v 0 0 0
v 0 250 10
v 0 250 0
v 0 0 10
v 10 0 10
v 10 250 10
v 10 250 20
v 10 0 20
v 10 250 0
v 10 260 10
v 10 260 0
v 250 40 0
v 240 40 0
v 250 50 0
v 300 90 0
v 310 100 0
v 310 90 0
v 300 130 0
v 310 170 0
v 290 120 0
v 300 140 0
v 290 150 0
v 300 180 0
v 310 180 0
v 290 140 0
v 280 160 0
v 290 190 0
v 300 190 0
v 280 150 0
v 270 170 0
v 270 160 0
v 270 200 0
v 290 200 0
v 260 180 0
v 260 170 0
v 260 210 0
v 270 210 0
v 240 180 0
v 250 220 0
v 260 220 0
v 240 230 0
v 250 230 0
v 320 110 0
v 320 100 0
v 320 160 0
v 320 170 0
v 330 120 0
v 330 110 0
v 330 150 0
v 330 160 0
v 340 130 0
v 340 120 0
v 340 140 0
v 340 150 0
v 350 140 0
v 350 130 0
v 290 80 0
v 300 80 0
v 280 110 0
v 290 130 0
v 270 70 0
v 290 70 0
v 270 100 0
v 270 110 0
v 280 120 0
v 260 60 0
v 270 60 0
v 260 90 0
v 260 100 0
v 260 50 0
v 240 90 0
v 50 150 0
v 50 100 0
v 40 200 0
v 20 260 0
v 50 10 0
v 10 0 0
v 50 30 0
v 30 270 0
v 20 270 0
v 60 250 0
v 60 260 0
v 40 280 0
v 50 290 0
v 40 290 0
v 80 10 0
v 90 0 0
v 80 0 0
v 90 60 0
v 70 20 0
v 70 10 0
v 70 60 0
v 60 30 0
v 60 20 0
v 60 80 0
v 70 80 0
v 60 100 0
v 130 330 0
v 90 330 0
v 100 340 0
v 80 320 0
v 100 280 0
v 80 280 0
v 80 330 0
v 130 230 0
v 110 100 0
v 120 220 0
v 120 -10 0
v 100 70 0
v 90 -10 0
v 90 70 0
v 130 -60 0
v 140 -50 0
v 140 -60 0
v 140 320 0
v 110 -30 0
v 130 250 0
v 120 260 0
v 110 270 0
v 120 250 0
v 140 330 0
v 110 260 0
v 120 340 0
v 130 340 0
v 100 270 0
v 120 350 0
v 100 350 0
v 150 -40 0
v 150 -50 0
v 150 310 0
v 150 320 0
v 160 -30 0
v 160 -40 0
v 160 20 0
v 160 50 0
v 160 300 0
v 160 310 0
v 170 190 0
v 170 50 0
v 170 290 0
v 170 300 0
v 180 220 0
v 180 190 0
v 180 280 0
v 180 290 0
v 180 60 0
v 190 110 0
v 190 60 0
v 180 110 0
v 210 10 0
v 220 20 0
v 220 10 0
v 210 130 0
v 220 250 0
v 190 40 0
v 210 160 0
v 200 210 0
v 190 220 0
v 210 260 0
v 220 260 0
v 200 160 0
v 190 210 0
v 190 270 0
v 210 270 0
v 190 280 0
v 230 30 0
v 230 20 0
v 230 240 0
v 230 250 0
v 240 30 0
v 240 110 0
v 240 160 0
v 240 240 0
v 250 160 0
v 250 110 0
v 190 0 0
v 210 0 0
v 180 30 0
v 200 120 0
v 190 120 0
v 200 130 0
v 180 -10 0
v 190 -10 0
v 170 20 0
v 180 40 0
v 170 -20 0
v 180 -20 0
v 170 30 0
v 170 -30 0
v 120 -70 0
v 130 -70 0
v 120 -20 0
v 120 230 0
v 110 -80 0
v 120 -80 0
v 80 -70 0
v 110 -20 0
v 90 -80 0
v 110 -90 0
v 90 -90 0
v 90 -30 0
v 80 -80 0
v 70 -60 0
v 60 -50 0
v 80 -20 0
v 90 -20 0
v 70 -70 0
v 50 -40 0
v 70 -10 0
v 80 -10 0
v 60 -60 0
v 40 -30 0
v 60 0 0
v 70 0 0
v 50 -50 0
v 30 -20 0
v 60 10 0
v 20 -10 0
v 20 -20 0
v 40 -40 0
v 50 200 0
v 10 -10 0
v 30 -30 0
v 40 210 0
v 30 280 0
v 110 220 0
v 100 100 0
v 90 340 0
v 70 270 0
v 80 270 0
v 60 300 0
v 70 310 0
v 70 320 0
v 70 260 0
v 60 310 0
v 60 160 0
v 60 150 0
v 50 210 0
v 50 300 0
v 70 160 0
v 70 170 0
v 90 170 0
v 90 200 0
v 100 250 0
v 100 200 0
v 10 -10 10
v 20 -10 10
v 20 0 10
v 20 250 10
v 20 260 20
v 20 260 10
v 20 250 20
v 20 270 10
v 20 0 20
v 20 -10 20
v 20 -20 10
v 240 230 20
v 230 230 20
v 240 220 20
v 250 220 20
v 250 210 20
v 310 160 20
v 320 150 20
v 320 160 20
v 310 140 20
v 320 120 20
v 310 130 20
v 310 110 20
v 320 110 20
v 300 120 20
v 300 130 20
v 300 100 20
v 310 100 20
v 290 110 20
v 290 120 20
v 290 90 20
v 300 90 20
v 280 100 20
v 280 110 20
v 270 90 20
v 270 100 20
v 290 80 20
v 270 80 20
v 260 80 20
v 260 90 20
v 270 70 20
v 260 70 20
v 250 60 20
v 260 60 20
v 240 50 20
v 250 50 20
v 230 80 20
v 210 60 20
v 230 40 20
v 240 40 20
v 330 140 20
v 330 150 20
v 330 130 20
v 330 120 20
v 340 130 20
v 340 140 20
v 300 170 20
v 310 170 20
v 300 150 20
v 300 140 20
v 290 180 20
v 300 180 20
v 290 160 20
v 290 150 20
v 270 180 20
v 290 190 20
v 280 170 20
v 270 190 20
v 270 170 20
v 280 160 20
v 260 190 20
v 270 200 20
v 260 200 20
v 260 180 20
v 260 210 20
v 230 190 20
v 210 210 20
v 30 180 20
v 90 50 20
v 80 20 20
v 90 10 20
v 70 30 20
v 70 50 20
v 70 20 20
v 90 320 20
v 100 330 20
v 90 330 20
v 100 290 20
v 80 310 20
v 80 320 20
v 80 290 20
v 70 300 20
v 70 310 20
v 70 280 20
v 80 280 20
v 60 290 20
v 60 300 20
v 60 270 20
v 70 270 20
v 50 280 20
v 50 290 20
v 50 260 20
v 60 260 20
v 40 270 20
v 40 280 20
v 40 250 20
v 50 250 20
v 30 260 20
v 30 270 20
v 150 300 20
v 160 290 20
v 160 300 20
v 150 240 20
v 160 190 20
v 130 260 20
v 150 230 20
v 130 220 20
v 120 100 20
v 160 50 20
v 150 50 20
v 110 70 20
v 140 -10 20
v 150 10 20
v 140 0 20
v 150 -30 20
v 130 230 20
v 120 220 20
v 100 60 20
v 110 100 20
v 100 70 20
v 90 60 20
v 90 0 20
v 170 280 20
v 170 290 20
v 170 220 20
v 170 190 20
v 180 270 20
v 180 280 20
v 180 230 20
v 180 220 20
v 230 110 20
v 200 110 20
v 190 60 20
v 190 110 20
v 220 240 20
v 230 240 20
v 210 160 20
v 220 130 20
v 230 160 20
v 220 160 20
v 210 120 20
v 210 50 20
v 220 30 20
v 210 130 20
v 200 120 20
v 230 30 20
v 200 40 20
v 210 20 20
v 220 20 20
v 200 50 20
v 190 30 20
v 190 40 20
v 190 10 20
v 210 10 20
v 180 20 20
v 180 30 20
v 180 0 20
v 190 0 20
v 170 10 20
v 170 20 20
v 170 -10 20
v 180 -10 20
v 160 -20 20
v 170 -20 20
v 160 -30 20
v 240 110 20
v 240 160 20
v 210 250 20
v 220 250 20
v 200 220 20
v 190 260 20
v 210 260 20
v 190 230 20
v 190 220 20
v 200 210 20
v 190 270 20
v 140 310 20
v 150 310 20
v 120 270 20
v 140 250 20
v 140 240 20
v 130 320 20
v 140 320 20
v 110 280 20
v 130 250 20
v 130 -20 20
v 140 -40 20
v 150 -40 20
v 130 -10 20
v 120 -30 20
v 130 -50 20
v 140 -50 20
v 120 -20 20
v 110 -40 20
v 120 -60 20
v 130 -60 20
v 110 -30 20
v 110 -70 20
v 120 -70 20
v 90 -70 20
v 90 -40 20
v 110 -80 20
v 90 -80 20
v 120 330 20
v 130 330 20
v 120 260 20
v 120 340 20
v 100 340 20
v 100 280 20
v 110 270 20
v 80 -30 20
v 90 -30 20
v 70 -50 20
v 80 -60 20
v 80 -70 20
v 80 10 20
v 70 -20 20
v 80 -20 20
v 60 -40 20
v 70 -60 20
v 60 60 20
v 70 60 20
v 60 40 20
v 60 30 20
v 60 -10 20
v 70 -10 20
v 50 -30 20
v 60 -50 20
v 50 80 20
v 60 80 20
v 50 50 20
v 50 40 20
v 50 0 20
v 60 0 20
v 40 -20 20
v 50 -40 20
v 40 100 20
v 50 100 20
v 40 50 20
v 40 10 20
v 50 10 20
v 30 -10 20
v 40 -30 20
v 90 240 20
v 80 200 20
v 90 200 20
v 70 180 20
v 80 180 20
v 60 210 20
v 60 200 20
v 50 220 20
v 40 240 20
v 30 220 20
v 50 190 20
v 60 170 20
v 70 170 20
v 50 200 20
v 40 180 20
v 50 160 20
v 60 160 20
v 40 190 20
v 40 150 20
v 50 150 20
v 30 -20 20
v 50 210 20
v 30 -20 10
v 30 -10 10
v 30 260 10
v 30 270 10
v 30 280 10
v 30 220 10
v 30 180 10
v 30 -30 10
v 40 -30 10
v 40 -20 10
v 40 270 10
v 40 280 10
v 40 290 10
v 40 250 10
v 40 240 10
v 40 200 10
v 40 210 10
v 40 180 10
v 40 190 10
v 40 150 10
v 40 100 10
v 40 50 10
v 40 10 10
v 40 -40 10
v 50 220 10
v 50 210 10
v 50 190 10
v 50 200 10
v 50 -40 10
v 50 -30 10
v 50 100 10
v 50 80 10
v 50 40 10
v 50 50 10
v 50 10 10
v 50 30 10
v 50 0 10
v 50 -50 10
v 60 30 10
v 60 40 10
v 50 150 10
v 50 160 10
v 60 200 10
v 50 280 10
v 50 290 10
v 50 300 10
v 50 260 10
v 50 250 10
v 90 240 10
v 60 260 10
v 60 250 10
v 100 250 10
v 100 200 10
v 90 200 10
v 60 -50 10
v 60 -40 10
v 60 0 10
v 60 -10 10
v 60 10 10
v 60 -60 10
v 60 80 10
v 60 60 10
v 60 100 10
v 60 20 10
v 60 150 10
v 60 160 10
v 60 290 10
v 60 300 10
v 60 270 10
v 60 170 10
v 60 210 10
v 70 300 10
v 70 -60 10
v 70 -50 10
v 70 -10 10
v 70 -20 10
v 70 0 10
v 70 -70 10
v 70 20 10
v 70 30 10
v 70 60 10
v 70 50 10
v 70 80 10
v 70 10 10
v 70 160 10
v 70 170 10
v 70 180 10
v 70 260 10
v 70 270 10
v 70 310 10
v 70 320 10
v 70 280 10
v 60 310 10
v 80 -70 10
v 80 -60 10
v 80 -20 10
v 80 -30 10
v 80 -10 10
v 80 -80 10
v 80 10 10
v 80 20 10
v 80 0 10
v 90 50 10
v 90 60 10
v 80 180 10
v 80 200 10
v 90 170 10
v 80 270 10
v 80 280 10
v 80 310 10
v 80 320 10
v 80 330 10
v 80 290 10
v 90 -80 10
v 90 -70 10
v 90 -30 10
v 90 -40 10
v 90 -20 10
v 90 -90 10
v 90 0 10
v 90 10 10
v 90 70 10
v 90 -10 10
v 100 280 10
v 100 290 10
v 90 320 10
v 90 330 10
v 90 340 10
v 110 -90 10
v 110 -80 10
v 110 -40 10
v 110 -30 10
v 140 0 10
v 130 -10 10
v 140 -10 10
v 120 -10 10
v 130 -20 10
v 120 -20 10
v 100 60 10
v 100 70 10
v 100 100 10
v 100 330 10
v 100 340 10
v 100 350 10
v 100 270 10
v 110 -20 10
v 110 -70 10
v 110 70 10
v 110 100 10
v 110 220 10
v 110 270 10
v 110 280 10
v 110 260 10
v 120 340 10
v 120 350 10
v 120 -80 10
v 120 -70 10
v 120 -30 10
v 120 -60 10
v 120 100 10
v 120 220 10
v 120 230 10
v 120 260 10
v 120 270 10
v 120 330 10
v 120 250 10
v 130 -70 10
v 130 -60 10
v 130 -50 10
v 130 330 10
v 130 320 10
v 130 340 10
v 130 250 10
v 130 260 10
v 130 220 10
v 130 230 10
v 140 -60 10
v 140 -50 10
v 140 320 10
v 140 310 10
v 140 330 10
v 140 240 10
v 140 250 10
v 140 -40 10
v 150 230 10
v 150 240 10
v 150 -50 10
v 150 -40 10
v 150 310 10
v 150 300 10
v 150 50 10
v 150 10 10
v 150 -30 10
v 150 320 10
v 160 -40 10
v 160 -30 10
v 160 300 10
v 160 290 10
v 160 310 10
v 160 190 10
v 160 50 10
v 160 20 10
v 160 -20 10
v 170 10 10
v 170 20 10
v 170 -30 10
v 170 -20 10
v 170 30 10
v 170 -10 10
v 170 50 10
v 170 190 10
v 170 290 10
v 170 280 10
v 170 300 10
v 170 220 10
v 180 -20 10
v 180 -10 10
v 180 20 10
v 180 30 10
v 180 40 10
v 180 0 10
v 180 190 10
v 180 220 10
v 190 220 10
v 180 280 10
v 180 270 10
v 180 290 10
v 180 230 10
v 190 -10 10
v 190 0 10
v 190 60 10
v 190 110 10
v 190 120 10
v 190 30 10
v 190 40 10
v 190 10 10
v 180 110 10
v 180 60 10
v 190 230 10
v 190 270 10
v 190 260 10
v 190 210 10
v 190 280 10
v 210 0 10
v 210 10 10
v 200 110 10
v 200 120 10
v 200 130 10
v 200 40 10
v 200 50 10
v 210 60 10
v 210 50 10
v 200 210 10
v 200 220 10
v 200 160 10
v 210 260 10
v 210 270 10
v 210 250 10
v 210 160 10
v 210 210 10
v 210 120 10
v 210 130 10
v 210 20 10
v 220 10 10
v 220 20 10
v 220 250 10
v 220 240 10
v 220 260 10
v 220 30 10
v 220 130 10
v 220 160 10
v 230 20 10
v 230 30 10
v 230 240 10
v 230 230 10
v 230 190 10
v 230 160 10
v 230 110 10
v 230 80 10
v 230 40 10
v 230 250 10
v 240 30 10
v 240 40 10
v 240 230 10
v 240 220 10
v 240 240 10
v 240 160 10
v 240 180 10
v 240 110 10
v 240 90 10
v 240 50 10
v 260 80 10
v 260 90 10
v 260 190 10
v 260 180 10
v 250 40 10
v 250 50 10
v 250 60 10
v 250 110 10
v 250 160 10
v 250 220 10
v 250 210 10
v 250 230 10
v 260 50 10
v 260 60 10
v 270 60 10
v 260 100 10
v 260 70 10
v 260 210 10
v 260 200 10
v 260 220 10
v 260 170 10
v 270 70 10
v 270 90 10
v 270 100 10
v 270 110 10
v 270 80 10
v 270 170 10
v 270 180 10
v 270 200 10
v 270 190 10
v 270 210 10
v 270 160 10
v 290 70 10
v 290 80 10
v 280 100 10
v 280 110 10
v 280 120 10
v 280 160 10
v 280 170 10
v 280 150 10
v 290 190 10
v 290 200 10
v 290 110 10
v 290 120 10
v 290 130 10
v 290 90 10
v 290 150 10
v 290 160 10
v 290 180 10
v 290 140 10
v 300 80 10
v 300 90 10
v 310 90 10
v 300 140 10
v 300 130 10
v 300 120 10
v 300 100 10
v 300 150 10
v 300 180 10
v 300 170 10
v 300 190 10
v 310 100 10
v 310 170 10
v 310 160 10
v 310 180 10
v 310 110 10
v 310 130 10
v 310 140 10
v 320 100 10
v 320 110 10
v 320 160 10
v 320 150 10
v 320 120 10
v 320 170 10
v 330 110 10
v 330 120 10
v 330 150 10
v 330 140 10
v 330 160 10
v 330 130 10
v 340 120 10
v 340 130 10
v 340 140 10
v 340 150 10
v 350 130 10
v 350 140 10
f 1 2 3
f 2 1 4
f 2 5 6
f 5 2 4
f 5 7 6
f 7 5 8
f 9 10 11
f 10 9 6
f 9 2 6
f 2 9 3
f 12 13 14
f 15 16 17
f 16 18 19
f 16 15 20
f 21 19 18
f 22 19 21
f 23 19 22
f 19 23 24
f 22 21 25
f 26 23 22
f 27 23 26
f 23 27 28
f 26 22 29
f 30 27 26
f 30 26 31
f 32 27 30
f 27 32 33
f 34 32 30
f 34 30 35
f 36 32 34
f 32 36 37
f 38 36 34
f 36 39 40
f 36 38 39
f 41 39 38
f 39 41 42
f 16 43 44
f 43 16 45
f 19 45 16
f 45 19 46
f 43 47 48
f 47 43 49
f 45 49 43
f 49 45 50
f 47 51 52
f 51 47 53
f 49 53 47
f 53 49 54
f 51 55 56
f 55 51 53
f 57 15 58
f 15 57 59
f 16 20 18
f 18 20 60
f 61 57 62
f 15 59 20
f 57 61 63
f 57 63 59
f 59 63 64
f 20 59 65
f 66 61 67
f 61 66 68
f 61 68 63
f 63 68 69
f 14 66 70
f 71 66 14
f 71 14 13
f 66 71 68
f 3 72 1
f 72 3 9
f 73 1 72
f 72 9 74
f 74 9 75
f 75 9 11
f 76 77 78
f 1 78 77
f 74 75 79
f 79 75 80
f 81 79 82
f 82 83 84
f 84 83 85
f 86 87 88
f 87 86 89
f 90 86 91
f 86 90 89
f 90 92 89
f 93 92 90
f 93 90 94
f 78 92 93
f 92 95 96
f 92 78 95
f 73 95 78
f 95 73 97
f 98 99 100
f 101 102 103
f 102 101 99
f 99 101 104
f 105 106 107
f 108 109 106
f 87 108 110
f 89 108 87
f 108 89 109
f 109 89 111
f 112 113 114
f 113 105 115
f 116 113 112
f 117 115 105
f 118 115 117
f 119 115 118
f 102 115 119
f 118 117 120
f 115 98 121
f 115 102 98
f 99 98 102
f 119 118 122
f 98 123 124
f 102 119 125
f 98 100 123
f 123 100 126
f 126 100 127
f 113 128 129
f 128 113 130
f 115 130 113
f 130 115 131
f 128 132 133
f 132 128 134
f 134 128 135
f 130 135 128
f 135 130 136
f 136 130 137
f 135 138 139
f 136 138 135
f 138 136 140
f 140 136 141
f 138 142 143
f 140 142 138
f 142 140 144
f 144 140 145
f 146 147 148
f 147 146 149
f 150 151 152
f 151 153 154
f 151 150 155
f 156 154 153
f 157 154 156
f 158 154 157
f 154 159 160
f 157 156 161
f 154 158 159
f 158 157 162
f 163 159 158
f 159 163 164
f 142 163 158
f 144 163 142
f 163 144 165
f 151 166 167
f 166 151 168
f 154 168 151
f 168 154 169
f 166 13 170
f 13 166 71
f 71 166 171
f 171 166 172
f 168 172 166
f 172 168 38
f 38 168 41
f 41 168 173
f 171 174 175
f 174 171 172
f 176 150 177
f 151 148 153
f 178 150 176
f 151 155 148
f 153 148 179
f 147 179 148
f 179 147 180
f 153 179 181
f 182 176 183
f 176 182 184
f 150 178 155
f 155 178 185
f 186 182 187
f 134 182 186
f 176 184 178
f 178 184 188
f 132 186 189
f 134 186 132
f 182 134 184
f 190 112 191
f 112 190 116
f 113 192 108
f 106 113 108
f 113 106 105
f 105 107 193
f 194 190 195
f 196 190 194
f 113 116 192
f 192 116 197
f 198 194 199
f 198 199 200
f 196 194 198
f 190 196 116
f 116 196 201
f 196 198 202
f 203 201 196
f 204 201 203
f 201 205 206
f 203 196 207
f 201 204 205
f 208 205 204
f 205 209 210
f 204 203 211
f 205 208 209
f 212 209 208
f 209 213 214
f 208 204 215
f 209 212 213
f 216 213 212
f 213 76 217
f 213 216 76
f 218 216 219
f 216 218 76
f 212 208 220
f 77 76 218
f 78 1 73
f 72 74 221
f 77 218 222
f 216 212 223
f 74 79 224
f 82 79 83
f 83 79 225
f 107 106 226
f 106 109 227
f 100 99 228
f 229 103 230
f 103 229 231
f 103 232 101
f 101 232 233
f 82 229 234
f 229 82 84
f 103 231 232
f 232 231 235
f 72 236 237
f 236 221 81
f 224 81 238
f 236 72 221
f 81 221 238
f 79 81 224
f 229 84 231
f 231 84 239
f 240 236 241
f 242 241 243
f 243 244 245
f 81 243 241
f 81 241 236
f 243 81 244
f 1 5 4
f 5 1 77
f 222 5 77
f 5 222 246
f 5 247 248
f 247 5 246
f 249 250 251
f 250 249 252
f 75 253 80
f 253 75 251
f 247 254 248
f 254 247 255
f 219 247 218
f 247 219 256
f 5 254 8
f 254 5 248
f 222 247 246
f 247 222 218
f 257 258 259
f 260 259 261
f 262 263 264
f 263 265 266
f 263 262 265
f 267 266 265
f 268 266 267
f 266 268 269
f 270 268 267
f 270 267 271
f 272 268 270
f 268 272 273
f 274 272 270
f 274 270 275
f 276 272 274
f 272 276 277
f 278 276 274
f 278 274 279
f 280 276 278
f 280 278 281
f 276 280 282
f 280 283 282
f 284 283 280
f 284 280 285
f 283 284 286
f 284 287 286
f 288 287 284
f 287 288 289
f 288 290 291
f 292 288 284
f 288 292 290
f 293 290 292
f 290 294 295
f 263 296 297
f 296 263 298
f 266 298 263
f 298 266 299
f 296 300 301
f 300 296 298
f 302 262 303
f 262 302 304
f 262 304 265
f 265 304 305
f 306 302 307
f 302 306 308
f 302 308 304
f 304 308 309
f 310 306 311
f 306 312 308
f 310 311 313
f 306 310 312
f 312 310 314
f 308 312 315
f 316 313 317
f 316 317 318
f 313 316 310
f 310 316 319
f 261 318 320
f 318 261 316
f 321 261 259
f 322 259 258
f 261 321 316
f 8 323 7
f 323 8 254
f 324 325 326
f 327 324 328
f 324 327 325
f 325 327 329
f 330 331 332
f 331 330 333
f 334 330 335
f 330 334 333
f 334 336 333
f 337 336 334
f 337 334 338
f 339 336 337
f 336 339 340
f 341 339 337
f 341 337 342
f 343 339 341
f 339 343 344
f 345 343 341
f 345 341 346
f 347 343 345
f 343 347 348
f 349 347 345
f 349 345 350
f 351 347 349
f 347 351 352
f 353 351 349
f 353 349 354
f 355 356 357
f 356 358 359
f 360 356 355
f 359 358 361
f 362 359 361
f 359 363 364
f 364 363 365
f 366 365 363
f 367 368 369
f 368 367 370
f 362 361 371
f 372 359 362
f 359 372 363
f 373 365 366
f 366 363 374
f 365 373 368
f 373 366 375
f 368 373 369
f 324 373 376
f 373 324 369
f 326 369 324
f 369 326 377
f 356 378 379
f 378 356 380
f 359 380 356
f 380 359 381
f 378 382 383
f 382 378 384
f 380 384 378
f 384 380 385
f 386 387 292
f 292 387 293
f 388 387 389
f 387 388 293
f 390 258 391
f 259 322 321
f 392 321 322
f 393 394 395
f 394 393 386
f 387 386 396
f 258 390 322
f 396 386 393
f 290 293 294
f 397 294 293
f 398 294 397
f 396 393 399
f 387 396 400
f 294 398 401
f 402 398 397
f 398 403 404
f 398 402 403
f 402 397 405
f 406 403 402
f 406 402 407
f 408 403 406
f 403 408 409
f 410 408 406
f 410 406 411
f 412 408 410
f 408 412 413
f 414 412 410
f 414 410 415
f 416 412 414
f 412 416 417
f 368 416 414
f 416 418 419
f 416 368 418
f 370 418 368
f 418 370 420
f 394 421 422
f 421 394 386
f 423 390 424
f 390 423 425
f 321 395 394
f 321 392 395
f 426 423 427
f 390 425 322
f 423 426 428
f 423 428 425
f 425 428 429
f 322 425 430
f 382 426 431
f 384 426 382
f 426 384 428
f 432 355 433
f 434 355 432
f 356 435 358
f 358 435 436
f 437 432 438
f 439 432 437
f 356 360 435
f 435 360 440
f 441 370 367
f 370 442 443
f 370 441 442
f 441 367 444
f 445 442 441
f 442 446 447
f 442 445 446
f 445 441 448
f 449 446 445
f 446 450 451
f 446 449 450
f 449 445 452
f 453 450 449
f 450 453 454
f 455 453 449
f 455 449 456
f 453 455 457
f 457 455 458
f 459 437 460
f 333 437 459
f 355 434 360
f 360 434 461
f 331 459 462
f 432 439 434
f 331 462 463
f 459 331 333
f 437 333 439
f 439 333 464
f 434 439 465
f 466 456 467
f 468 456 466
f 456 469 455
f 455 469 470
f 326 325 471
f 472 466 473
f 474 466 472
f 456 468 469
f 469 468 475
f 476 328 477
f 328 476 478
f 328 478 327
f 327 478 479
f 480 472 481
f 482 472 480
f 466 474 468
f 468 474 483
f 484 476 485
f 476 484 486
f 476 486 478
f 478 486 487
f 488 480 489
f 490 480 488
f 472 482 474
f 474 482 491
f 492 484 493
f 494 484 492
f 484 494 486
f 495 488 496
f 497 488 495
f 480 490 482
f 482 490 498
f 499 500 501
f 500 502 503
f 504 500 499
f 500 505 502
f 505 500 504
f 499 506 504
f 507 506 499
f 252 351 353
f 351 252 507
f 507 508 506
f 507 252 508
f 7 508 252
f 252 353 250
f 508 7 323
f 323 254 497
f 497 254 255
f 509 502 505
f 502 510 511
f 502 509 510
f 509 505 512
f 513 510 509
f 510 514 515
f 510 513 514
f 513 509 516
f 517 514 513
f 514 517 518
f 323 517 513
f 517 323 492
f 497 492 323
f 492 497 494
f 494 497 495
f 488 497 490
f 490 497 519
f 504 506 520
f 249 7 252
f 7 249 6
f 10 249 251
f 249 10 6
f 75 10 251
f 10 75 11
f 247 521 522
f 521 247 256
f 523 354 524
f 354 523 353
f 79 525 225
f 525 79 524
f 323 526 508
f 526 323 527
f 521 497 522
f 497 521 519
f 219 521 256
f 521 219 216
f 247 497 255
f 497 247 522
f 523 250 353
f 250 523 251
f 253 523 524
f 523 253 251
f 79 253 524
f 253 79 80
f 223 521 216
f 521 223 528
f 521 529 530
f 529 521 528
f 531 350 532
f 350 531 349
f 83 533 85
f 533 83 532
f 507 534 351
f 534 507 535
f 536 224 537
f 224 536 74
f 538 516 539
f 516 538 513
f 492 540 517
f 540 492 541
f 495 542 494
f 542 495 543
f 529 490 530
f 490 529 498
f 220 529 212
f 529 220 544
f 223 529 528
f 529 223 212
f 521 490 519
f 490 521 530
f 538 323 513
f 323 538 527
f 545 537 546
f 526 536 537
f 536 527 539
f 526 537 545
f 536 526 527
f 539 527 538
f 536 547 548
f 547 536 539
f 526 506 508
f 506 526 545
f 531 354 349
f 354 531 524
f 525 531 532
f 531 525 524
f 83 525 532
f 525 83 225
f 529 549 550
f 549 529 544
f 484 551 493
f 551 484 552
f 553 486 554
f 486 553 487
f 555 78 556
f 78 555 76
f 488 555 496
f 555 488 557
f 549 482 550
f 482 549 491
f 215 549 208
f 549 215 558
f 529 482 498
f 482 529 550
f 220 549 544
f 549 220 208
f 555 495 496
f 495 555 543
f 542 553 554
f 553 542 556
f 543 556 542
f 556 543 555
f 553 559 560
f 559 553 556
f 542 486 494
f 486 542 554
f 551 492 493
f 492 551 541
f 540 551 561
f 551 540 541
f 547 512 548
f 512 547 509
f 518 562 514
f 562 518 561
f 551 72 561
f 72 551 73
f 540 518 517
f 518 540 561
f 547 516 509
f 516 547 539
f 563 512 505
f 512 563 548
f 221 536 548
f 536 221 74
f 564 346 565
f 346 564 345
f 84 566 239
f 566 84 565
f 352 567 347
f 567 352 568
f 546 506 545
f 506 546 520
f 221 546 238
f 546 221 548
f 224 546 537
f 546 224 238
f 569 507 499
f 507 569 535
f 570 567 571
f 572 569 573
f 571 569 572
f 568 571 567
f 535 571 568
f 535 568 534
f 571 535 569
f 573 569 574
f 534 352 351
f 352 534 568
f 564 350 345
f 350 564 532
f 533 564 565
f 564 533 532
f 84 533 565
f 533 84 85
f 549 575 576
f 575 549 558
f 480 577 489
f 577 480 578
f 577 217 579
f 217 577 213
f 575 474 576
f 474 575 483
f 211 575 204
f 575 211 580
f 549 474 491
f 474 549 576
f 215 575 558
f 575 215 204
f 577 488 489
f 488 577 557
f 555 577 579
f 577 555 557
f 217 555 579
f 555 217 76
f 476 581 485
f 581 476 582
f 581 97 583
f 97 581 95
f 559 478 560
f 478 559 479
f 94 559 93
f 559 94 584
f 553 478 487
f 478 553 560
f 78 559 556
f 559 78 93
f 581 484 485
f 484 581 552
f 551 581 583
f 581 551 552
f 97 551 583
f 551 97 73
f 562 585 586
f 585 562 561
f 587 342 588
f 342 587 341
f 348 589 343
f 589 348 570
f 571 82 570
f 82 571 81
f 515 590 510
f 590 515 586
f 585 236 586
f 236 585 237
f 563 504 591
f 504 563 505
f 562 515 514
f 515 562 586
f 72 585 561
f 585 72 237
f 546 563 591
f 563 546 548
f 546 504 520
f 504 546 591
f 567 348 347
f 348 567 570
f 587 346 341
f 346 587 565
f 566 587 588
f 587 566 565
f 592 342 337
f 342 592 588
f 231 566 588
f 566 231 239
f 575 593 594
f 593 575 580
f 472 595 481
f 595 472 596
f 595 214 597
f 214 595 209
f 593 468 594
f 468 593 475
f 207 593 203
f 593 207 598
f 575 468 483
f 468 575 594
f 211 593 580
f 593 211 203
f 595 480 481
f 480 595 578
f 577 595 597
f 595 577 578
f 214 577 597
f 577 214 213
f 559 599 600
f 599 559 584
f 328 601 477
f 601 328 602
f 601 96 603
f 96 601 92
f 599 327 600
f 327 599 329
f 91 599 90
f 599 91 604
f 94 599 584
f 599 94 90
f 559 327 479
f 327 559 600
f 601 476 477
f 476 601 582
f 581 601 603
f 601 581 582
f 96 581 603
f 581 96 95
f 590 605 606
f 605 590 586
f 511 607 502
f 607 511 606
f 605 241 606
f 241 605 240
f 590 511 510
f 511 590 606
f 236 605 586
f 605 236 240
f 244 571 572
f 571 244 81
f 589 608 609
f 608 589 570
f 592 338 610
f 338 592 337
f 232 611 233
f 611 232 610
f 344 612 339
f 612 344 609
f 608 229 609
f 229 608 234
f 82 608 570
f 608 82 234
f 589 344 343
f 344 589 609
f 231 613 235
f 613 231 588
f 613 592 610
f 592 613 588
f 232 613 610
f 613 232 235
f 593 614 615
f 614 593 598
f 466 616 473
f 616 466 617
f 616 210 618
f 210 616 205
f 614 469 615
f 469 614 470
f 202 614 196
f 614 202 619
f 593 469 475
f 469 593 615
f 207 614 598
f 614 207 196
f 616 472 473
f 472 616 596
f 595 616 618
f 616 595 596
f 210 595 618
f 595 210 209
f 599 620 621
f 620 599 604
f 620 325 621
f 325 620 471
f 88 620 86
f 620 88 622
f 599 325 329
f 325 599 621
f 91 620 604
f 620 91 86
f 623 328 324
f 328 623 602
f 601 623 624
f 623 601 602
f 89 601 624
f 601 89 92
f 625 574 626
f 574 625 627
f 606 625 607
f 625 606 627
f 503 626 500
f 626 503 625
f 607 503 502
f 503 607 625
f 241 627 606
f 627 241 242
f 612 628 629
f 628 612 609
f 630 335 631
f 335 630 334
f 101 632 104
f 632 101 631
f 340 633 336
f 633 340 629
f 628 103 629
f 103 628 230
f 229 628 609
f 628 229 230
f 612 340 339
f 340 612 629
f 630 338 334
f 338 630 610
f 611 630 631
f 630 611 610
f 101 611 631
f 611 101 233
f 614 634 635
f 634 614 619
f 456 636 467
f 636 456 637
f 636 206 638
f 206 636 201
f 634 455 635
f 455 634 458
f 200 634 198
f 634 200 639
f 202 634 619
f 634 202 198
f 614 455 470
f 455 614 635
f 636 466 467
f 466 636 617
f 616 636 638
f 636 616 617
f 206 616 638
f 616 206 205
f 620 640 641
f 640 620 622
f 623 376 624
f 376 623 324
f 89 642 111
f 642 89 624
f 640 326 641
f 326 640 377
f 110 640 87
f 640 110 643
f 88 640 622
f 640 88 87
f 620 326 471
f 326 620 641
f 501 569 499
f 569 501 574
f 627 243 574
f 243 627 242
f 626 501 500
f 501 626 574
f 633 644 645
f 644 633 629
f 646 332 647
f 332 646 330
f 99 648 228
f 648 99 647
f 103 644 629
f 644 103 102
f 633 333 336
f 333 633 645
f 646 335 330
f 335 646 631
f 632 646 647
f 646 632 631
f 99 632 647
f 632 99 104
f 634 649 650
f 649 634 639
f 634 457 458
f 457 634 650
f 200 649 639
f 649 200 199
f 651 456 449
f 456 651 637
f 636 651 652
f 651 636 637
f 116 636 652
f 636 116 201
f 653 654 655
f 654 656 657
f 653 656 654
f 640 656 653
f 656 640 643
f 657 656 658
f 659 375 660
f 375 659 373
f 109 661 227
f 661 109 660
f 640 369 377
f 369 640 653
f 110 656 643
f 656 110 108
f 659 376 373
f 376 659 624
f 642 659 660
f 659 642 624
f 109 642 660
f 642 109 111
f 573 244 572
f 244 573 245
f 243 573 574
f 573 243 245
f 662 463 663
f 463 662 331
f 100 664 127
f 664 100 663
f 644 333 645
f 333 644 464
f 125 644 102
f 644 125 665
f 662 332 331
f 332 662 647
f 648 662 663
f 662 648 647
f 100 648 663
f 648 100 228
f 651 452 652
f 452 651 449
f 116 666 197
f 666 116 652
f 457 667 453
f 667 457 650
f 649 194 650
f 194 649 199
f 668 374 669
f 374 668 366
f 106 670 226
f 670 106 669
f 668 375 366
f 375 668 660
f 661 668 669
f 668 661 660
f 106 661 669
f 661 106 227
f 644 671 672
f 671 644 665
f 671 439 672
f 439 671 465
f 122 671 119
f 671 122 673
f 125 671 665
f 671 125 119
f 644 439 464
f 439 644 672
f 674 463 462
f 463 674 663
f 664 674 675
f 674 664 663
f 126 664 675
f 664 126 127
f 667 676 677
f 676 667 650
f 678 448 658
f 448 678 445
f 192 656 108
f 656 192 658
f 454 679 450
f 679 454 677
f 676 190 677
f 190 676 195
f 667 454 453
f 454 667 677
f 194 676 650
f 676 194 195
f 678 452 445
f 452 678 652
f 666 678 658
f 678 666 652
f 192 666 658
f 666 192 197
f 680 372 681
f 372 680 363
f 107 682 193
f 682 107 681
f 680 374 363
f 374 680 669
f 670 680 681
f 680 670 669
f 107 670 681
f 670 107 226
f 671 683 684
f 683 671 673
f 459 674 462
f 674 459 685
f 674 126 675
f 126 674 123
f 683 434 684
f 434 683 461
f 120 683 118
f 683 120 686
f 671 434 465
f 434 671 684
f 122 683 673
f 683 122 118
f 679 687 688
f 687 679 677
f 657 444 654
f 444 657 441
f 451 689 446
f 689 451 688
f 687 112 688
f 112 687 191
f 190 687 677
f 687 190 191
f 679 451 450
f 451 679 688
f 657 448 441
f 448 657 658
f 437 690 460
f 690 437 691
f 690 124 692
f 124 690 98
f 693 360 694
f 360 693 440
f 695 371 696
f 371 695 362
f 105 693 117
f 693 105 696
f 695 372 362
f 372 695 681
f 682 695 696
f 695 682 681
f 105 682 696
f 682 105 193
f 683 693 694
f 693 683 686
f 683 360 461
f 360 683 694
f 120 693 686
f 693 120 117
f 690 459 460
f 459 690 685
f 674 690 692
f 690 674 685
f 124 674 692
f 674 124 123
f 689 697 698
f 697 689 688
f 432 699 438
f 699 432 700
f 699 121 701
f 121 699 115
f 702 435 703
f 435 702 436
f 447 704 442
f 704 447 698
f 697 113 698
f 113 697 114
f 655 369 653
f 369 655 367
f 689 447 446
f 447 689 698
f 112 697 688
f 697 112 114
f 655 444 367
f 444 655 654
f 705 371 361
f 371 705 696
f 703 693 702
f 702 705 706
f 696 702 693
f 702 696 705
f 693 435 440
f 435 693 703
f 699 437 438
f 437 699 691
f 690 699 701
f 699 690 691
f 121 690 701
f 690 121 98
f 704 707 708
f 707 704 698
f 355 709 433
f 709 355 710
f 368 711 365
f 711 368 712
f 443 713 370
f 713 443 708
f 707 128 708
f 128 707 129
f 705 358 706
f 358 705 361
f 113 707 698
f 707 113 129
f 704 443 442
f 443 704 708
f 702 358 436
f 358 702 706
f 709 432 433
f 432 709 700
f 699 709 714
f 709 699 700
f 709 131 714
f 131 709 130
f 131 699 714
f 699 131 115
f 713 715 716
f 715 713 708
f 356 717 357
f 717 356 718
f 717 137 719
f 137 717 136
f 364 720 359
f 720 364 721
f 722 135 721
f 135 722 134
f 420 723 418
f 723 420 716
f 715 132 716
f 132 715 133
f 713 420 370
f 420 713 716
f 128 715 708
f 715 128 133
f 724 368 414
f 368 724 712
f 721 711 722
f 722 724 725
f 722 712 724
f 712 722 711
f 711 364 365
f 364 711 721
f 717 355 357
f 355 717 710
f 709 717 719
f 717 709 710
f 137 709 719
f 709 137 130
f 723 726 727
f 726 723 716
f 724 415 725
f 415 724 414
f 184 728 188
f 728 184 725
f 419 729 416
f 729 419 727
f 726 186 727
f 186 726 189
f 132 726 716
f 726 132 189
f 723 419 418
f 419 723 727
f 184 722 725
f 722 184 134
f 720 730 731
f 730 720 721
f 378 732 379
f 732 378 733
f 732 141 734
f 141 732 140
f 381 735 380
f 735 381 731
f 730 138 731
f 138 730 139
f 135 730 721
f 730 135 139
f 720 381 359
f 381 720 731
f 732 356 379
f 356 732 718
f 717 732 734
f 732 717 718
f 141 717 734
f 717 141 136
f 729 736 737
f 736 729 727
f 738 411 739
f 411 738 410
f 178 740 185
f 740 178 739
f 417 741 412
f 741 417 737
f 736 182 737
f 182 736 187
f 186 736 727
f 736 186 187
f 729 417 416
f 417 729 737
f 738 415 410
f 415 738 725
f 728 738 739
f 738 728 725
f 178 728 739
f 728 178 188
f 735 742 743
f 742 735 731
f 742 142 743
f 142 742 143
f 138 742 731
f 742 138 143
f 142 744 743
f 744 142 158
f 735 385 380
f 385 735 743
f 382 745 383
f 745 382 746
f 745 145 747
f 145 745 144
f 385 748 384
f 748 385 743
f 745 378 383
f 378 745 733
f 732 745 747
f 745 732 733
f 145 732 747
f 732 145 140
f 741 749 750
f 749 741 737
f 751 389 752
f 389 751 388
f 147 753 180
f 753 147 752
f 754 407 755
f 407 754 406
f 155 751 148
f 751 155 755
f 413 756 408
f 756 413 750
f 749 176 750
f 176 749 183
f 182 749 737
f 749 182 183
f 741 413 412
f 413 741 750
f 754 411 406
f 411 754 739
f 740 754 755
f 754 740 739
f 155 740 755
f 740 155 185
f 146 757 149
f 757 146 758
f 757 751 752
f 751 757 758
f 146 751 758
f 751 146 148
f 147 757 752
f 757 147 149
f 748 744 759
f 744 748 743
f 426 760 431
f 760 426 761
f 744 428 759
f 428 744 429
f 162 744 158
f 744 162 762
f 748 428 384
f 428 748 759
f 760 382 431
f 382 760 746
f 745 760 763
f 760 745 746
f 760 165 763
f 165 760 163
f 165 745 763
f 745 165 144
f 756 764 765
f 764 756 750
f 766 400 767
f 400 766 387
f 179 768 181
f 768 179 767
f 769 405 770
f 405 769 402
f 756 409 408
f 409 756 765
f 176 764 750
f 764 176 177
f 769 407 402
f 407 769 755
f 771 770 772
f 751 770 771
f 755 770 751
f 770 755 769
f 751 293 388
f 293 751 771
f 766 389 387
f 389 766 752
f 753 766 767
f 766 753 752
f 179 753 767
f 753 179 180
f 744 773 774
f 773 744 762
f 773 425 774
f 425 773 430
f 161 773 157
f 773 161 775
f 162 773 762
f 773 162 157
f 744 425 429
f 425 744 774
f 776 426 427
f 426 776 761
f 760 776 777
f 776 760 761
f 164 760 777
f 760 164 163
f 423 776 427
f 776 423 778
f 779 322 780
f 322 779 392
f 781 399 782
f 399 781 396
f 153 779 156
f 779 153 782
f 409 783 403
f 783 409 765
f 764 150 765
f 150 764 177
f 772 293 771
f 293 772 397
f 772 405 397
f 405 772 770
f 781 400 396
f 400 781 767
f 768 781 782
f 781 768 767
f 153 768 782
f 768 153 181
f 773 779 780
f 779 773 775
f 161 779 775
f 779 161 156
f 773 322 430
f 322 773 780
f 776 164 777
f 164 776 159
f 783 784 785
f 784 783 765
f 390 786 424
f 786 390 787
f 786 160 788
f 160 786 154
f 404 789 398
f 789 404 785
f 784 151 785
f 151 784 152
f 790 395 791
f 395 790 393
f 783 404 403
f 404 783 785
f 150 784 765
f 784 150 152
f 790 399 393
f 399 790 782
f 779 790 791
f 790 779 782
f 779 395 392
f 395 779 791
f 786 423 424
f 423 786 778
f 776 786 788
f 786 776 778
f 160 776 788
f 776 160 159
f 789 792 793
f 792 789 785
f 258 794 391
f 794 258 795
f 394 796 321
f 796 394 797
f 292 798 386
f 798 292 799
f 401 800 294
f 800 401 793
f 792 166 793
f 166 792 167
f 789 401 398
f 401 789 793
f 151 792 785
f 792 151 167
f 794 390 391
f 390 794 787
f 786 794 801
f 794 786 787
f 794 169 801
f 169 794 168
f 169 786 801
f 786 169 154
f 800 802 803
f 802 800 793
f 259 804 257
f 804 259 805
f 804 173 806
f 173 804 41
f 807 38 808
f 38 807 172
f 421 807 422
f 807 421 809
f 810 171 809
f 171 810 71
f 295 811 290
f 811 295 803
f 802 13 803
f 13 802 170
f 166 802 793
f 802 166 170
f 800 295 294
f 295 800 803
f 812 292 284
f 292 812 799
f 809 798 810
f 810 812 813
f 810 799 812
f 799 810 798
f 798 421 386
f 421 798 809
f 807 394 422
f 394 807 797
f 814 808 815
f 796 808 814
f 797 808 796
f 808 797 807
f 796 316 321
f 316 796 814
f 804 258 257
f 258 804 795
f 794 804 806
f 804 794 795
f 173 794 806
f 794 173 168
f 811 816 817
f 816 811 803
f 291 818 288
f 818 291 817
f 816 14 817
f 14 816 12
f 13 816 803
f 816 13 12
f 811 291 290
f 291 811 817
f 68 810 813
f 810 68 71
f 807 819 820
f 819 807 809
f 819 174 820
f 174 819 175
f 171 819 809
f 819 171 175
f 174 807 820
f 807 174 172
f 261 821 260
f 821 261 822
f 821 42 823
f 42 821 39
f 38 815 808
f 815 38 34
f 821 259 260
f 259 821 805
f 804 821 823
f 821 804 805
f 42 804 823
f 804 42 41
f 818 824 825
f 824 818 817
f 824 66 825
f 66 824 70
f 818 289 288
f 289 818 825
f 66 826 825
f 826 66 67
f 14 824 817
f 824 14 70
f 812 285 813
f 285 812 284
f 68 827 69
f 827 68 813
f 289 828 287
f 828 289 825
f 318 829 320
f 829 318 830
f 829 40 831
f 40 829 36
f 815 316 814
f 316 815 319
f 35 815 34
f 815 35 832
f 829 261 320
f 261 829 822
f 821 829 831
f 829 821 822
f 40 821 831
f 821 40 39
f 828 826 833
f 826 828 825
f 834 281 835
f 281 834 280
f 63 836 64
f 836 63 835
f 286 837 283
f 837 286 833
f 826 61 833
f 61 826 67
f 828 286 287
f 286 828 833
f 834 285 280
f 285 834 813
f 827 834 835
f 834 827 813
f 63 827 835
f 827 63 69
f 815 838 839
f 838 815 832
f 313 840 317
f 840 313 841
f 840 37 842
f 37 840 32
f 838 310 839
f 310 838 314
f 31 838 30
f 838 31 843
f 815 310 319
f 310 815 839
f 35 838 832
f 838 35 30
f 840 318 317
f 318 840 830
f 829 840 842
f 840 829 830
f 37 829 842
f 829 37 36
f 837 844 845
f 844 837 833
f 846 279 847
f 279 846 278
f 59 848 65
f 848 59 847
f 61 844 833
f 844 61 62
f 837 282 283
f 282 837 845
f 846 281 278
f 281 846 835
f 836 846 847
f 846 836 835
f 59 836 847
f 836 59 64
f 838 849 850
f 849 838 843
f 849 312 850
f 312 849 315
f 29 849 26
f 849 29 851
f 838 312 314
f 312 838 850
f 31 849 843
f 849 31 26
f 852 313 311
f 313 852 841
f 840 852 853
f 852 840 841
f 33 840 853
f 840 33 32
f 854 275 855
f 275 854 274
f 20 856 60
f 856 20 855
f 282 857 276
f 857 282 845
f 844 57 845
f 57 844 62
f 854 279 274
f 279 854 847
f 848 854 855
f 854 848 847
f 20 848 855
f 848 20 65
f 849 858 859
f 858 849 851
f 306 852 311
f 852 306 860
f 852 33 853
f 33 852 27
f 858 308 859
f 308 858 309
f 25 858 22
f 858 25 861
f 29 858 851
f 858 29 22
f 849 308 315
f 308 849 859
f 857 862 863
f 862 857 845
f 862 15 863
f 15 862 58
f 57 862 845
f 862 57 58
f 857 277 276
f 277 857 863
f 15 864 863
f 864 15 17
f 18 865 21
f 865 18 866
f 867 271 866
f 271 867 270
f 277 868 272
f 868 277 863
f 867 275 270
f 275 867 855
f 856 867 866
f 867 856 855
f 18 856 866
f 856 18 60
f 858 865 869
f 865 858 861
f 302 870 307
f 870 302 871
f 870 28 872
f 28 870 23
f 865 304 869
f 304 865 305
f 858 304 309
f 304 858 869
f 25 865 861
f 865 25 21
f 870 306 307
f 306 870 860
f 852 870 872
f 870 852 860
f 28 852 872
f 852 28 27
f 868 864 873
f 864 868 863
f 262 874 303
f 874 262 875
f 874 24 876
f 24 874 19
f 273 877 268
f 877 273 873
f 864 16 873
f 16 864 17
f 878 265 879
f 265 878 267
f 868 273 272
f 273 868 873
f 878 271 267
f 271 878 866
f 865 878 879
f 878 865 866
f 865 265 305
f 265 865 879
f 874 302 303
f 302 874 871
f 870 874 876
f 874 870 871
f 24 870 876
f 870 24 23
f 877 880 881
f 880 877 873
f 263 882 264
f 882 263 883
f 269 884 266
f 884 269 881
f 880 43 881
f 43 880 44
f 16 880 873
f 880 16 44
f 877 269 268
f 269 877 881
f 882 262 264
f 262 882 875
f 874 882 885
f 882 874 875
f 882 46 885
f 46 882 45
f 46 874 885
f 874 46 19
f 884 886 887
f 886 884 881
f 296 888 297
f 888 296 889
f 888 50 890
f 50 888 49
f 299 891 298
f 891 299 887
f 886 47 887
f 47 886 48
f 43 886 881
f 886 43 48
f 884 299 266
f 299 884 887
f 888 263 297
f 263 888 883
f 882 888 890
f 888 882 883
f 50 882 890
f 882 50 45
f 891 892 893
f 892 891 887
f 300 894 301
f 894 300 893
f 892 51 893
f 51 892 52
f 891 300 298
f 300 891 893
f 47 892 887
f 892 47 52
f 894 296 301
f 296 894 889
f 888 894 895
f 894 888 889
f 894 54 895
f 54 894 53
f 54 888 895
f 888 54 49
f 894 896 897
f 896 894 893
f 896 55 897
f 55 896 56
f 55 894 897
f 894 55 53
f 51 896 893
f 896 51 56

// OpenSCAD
/* 
    superman is a 3D superman model
    
    Copyright (C) 2017  Eric Real Abadiano

    This program is free software: you can redistribute it and/or modify
    it under the terms of the GNU General Public License as published by
    the Free Software Foundation, either version 3 of the License, or
    (at your option) any later version.

    This program is distributed in the hope that it will be useful,
    but WITHOUT ANY WARRANTY; without even the implied warranty of
    MERCHANTABILITY or FITNESS FOR A PARTICULAR PURPOSE.  See the
    GNU General Public License for more details.

    You should have received a copy of the GNU General Public License
    along with this program.  If not, see <http://www.gnu.org/licenses/>.
*/

//////////////// FILA 1
//negro x25
color("black") cube([10,250,10]);

//////////////// FILA 2
//negro x1
color("black") translate([10,-10,0]) cube([10,10,10]);
//rojo x25
color("black") translate([10,0,0]) cube([10,250,20]);
//negro x1
color("black") translate([10,250,0]) cube([10,10,10]);

//////////////// FILA 3
//negro x1
color("black") translate([20,-20,0]) cube([10,10,10]);
//rojo x27
color("black") translate([20,-10,0]) cube([10,270,20]);
//negro x1
color("black") translate([20,260,0]) cube([10,10,10]);

//////////////// FILA 4
//negro x1
color("black") translate([30,-30,0]) cube([10,10,10]);
//rojo x20
color("black") translate([30,-20,0]) cube([10,200,20]);
//negro x4
color("black") translate([30,180,0]) cube([10,40,10]);
//rojo x5
color("black") translate([30,220,0]) cube([10,50,20]);
//negro x1
color("black") translate([30,270,0]) cube([10,10,10]);

//////////////// FILA 5
//negro x1
color("black") translate([40,-40,0]) cube([10,10,10]);
//rojo x4
color("black") translate([40,-30,0]) cube([10,40,20]);
//negro x4
color("black") translate([40,10,0]) cube([10,40,10]);
//rojo x5
color("black") translate([40,50,0]) cube([10,50,20]);
//negro x5
color("black") translate([40,100,0]) cube([10,50,10]);
//rojo x4
color("black") translate([40,150,0]) cube([10,40,20]);
//negro x1
color("black") translate([40,190,0]) cube([10,10,10]);
//amarillo x1
//translate([40,200,0]) cube([10,10,10]);
//negro x1
color("black") translate([40,210,0]) cube([10,10,10]);
//rojo x2
color("black") translate([40,220,0]) cube([10,20,20]);
//negro x1
color("black") translate([40,240,0]) cube([10,10,10]);
//rojo x3
color("black") translate([40,250,0]) cube([10,30,20]);
//negro x1
color("black") translate([40,280,0]) cube([10,10,10]);

//////////////// FILA 6
//negro x1
color("black") translate([50,-50,0]) cube([10,10,10]);
//rojo x4
color("black") translate([50,-40,0]) cube([10,40,20]);
//negro x1
color("black") translate([50,0,0]) cube([10,10,10]);
//amarillo x1
//translate([50,10,0]) cube([10,20,10]);
//negro x1
color("black") translate([50,30,0]) cube([10,10,10]);
//rojo x4
color("black") translate([50,40,0]) cube([10,40,20]);
//negro x2
color("black") translate([50,80,0]) cube([10,20,10]);
//amarillo x1
//translate([50,100,0]) cube([10,50,10]);
//negro x1
color("black") translate([50,150,0]) cube([10,10,10]);
//rojo x4
color("black") translate([50,160,0]) cube([10,40,20]);
//negro x1
color("black") translate([50,200,0]) cube([10,10,10]);
//rojo x3
color("black") translate([50,210,0]) cube([10,30,20]);
//negro x2
color("black") translate([50,240,0]) cube([10,20,10]);
//rojo x3
color("black") translate([50,260,0]) cube([10,30,20]);
//negro x1
color("black") translate([50,290,0]) cube([10,10,10]);

//////////////// FILA 7
//negro x1
color("black") translate([60,-60,0]) cube([10,10,10]);
//rojo x4
color("black") translate([60,-50,0]) cube([10,40,20]);
//negro x1
color("black") translate([60,-10,0]) cube([10,10,10]);
//amarillo x2
//translate([60,0,0]) cube([10,20,10]);
//negro x1
color("black") translate([60,20,0]) cube([10,10,10]);
//rojo x3
color("black") translate([60,30,0]) cube([10,30,20]);
//negro x2
color("black") translate([60,60,0]) cube([10,20,10]);
//amarillo x8
//translate([60,80,0]) cube([10,80,10]);
//negro x1
color("black") translate([60,160,0]) cube([10,10,10]);
//rojo x7
color("black") translate([60,170,0]) cube([10,70,20]);
//negro x1
color("black") translate([60,240,0]) cube([10,10,10]);
//amarillo x1
//translate([60,250,0]) cube([10,10,10]);
//negro x1
color("black") translate([60,260,0]) cube([10,10,10]);
//rojo x3
color("black") translate([60,270,0]) cube([10,30,20]);
//negro x1
color("black") translate([60,300,0]) cube([10,10,10]);

//////////////// FILA 8
//negro x1
color("black") translate([70,-70,0]) cube([10,10,10]);
//rojo x4
color("black") translate([70,-60,0]) cube([10,40,20]);
//negro x1
color("black") translate([70,-20,0]) cube([10,10,10]);
//amarillo x2
//translate([70,-10,0]) cube([10,20,10]);
//negro x1
color("black") translate([70,10,0]) cube([10,10,10]);
//rojo x3
color("black") translate([70,20,0]) cube([10,30,20]);
//negro x1
color("black") translate([70,50,0]) cube([10,10,10]);
//amarillo x11
//translate([70,60,0]) cube([10,110,10]);
//negro x1
color("black") translate([70,170,0]) cube([10,10,10]);
//rojo x6
color("black") translate([70,180,0]) cube([10,60,20]);
//negro x1
color("black") translate([70,240,0]) cube([10,10,10]);
//amarillo x2
//translate([70,250,0]) cube([10,20,10]);
//negro x1
color("black") translate([70,270,0]) cube([10,10,10]);
//rojo x3
color("black") translate([70,280,0]) cube([10,30,20]);
//negro x1
color("black") translate([70,310,0]) cube([10,10,10]);

//////////////// FILA 9
//negro x1
color("black") translate([80,-80,0]) cube([10,10,10]);
//rojo x4
color("black") translate([80,-70,0]) cube([10,40,20]);
//negro x1
color("black") translate([80,-30,0]) cube([10,10,10]);
//amarillo x2
//translate([80,-20,0]) cube([10,20,10]);
//negro x1
color("black") translate([80,0,0]) cube([10,10,10]);
//rojo x3
color("black") translate([80,10,0]) cube([10,40,20]);
//negro x1
color("black") translate([80,50,0]) cube([10,10,10]);
//amarillo x11
//translate([80,60,0]) cube([10,110,10]);
//negro x3
color("black") translate([80,170,0]) cube([10,30,10]);
//rojo x4
color("black") translate([80,200,0]) cube([10,40,20]);
//negro x1
color("black") translate([80,240,0]) cube([10,10,10]);
//amarillo x3
//translate([80,250,0]) cube([10,30,10]);
//negro x1
color("black") translate([80,280,0]) cube([10,10,10]);
//rojo x3
color("black") translate([80,290,0]) cube([10,30,20]);
//negro x1
color("black") translate([80,320,0]) cube([10,10,10]);

//////////////// FILA 10
//negro x1
color("black") translate([90,-90,0]) cube([10,10,10]);
//rojo x4
color("black") translate([90,-80,0]) cube([10,40,20]);
//negro x1
color("black") translate([90,-40,0]) cube([10,10,10]);
//amarillo x2
//translate([90,-30,0]) cube([10,20,10]);
//negro x1
color("black") translate([90,-10,0]) cube([10,10,10]);
//rojo x6
color("black") translate([90,0,0]) cube([10,60,20]);
//negro x6
color("black") translate([90,60,0]) cube([10,10,10]);
//amarillo x13
//translate([90,70,0]) cube([10,130,10]);
//negro x1
color("black") translate([90,200,0]) cube([10,50,10]);
//amarillo x3
//translate([90,250,0]) cube([10,30,10]);
//negro x1
color("black") translate([90,280,0]) cube([10,10,10]);
//rojo x3
color("black") translate([90,290,0]) cube([10,40,20]);
//negro x1
color("black") translate([90,330,0]) cube([10,10,10]);

//////////////// FILA 11
//negro x1
color("black") translate([100,-90,0]) cube([10,10,10]);
//rojo x4
color("black") translate([100,-80,0]) cube([10,40,20]);
//negro x1
color("black") translate([100,-40,0]) cube([10,10,10]);
//amarillo x2
//translate([100,-30,0]) cube([10,20,10]);
//negro x1
color("black") translate([100,-10,0]) cube([10,10,10]);
//rojo x7
color("black") translate([100,0,0]) cube([10,70,20]);
//negro x3
color("black") translate([100,70,0]) cube([10,30,10]);
//amarillo x17
//translate([100,100,0]) cube([10,170,10]);
//negro x1
color("black") translate([100,270,0]) cube([10,10,10]);
//rojo x6
color("black") translate([100,280,0]) cube([10,60,20]);
//negro x1
color("black") translate([100,340,0]) cube([10,10,10]);

//////////////// FILA 12
//negro x1
color("black") translate([110,-80,0]) cube([10,10,10]);
//rojo x4
color("black") translate([110,-70,0]) cube([10,40,20]);
//negro x1
color("black") translate([110,-30,0]) cube([10,10,10]);
//amarillo x1
//translate([110,-20,0]) cube([10,10,10]);
//negro x1
color("black") translate([110,-10,0]) cube([10,10,10]);
//rojo x10
color("black") translate([110,0,0]) cube([10,100,20]);
//negro x12
color("black") translate([110,100,0]) cube([10,120,10]);
//amarillo x4
//translate([110,220,0]) cube([10,40,10]);
//negro x1
color("black") translate([110,260,0]) cube([10,10,10]);
//rojo x7
color("black") translate([110,270,0]) cube([10,70,20]);
//negro x1
color("black") translate([110,340,0]) cube([10,10,10]);

//////////////// FILA 13
//negro x1
color("black") translate([120,-70,0]) cube([10,10,10]);
//rojo x4
color("black") translate([120,-60,0]) cube([10,40,20]);
//negro x2
color("black") translate([120,-20,0]) cube([10,20,10]);
//rojo x22
color("black") translate([120,0,0]) cube([10,220,20]);
//negro x1
color("black") translate([120,220,0]) cube([10,10,10]);
//amarillo x2
//translate([120,230,0]) cube([10,20,10]);
//negro x1
color("black") translate([120,250,0]) cube([10,10,10]);
//rojo x7
color("black") translate([120,260,0]) cube([10,70,20]);
//negro x1
color("black") translate([120,330,0]) cube([10,10,10]);

//////////////// FILA 14
//negro x1
color("black") translate([130,-60,0]) cube([10,10,10]);
//rojo x4
color("black") translate([130,-50,0]) cube([10,40,20]);
//negro x1
color("black") translate([130,-10,0]) cube([10,10,10]);
//rojo x23
color("black") translate([130,0,0]) cube([10,230,20]);
//negro x1
color("black") translate([130,230,0]) cube([10,20,10]);
//rojo x7
color("black") translate([130,250,0]) cube([10,70,20]);
//negro x1
color("black") translate([130,320,0]) cube([10,10,10]);

//////////////// FILA 15
//negro x1
color("black") translate([140,-50,0]) cube([10,10,10]);
//rojo x27
color("black") translate([140,-40,0]) cube([10,270,20]);
//negro x1
color("black") translate([140,230,0]) cube([10,10,10]);
//rojo x7
color("black") translate([140,240,0]) cube([10,70,20]);
//negro x1
color("black") translate([140,310,0]) cube([10,10,10]);

//////////////// FILA 16
//negro x1
color("black") translate([150,-40,0]) cube([10,10,10]);
//rojo x4
color("black") translate([150,-30,0]) cube([10,40,20]);
//negro x4
color("black") translate([150,10,0]) cube([10,40,10]);
//rojo x25
color("black") translate([150,50,0]) cube([10,250,20]);
//negro x1
color("black") translate([150,300,0]) cube([10,10,10]);

//////////////// FILA 17
//negro x1
color("black") translate([160,-30,0]) cube([10,10,10]);
//rojo x3
color("black") translate([160,-20,0]) cube([10,30,20]);
//negro x1
color("black") translate([160,10,0]) cube([10,10,10]);
//amarillo x3
//translate([160,20,0]) cube([10,30,10]);
//negro x14
color("black") translate([160,50,0]) cube([10,140,10]);
//rojo x10
color("black") translate([160,190,0]) cube([10,100,20]);
//negro x1
color("black") translate([160,290,0]) cube([10,10,10]);

//////////////// FILA 18
//negro x1
color("black") translate([170,-20,0]) cube([10,10,10]);
//rojo x3
color("black") translate([170,-10,0]) cube([10,30,20]);
//negro x1
color("black") translate([170,20,0]) cube([10,10,10]);
//amarillo x16
//translate([170,30,0]) cube([10,160,10]);
//negro x3
color("black") translate([170,190,0]) cube([10,30,10]);
//rojo x6
color("black") translate([170,220,0]) cube([10,60,20]);
//negro x1
color("black") translate([170,280,0]) cube([10,10,10]);

//////////////// FILA 19
//negro x1
color("black") translate([180,-10,0]) cube([10,10,10]);
//rojo x3
color("black") translate([180,0,0]) cube([10,30,20]);
//negro x1
color("black") translate([180,30,0]) cube([10,10,10]);
//amarillo x2
//translate([180,40,0]) cube([10,20,10]);
//negro x5
color("black") translate([180,60,0]) cube([10,50,10]);
//amarillo x11
//translate([180,110,0]) cube([10,110,10]);
//negro x1
color("black") translate([180,220,0]) cube([10,10,10]);
//rojo x4
color("black") translate([180,230,0]) cube([10,40,20]);
//negro x1
color("black") translate([180,270,0]) cube([10,10,10]);

//////////////// FILA 20
//negro x1
color("black") translate([190,0,0]) cube([10,10,10]);
//rojo x3
color("black") translate([190,10,0]) cube([10,30,20]);
//negro x2
color("black") translate([190,40,0]) cube([10,20,10]);
//rojo x5
color("black") translate([190,60,0]) cube([10,50,20]);
//negro x1
color("black") translate([190,110,0]) cube([10,10,10]);
//amarillo x9
//translate([190,120,0]) cube([10,90,10]);
//negro x1
color("black") translate([190,210,0]) cube([10,10,10]);
//rojo x4
color("black") translate([190,220,0]) cube([10,40,20]);
//negro x1
color("black") translate([190,260,0]) cube([10,10,10]);

//////////////// FILA 21
//negro x1
color("black") translate([200,0,0]) cube([10,10,10]);
//rojo x4
color("black") translate([200,10,0]) cube([10,40,20]);
//negro x1
color("black") translate([200,50,0]) cube([10,10,10]);
//rojo x6
color("black") translate([200,60,0]) cube([10,60,20]);
//negro x1
color("black") translate([200,120,0]) cube([10,10,10]);
//amarillo x3
//translate([200,130,0]) cube([10,30,10]);
//negro x5
color("black") translate([200,160,0]) cube([10,50,10]);
//rojo x5
color("black") translate([200,210,0]) cube([10,50,20]);
//negro x1
color("black") translate([200,260,0]) cube([10,10,10]);

//////////////// FILA 22
//negro x1
color("black") translate([210,10,0]) cube([10,10,10]);
//rojo x11
color("black") translate([210,20,0]) cube([10,110,20]);
//negro x3
color("black") translate([210,130,0]) cube([10,30,10]);
//rojo x9
color("black") translate([210,160,0]) cube([10,90,20]);
//negro x1
color("black") translate([210,250,0]) cube([10,10,10]);

//////////////// FILA 23
//negro x1
color("black") translate([220,20,0]) cube([10,10,10]);
//rojo x21
color("black") translate([220,30,0]) cube([10,210,20]);
//negro x1
color("black") translate([220,240,0]) cube([10,10,10]);

//////////////// FILA 24
//negro x1
color("black") translate([230,30,0]) cube([10,10,10]);
//rojo x4
color("black") translate([230,40,0]) cube([10,40,20]);
//negro x3
color("black") translate([230,80,0]) cube([10,30,10]);
//rojo x5
color("black") translate([230,110,0]) cube([10,50,20]);
//negro x3
color("black") translate([230,160,0]) cube([10,30,10]);
//rojo x4
color("black") translate([230,190,0]) cube([10,40,20]);
//negro x1
color("black") translate([230,230,0]) cube([10,10,10]);

//////////////// FILA 25
//negro x1
color("black") translate([240,40,0]) cube([10,10,10]);
//rojo x3
color("black") translate([240,50,0]) cube([10,30,20]);
//negro x1
color("black") translate([240,80,0]) cube([10,10,10]);
//amarillo x2
//translate([240,90,0]) cube([10,20,10]);
//negro x5
color("black") translate([240,110,0]) cube([10,50,10]);
//amarillo x2
//translate([240,160,0]) cube([10,20,10]);
//negro x1
color("black") translate([240,180,0]) cube([10,10,10]);
//rojo x3
color("black") translate([240,190,0]) cube([10,30,20]);
//negro x1
color("black") translate([240,220,0]) cube([10,10,10]);

//////////////// FILA 26
//negro x1
color("black") translate([250,50,0]) cube([10,10,10]);
//rojo x2
color("black") translate([250,60,0]) cube([10,20,20]);
//negro x1
color("black") translate([250,80,0]) cube([10,10,10]);
//amarillo x9
//translate([250,90,0]) cube([10,90,10]);
//negro x1
color("black") translate([250,180,0]) cube([10,10,10]);
//rojo x2
color("black") translate([250,190,0]) cube([10,20,20]);
//negro x1
color("black") translate([250,210,0]) cube([10,10,10]);

//////////////// FILA 27
//negro x1
color("black") translate([260,60,0]) cube([10,10,10]);
//rojo x2
color("black") translate([260,70,0]) cube([10,20,20]);
//negro x1
color("black") translate([260,90,0]) cube([10,10,10]);
//amarillo x7
//translate([260,100,0]) cube([10,70,10]);
//negro x1
color("black") translate([260,170,0]) cube([10,10,10]);
//rojo x2
color("black") translate([260,180,0]) cube([10,20,20]);
//negro x1
color("black") translate([260,200,0]) cube([10,10,10]);

//////////////// FILA 28
//negro x1
color("black") translate([270,70,0]) cube([10,10,10]);
//rojo x2
color("black") translate([270,80,0]) cube([10,20,20]);
//negro x1
color("black") translate([270,100,0]) cube([10,10,10]);
//amarillo x5
//translate([270,110,0]) cube([10,50,10]);
//negro x1
color("black") translate([270,160,0]) cube([10,10,10]);
//rojo x2
color("black") translate([270,170,0]) cube([10,20,20]);
//negro x1
color("black") translate([270,190,0]) cube([10,10,10]);

//////////////// FILA 29
//negro x1
color("black") translate([280,70,0]) cube([10,10,10]);
//rojo x3
color("black") translate([280,80,0]) cube([10,30,20]);
//negro x1
color("black") translate([280,110,0]) cube([10,10,10]);
//amarillo x3
//translate([280,120,0]) cube([10,30,10]);
//negro x1
color("black") translate([280,150,0]) cube([10,10,10]);
//rojo x3
color("black") translate([280,160,0]) cube([10,30,20]);
//negro x1
color("black") translate([280,190,0]) cube([10,10,10]);

//////////////// FILA 30
//negro x1
color("black") translate([290,80,0]) cube([10,10,10]);
//rojo x3
color("black") translate([290,90,0]) cube([10,30,20]);
//negro x1
color("black") translate([290,120,0]) cube([10,10,10]);
//amarillo x1
//translate([290,130,0]) cube([10,10,10]);
//negro x1
color("black") translate([290,140,0]) cube([10,10,10]);
//rojo x3
color("black") translate([290,150,0]) cube([10,30,20]);
//negro x1
color("black") translate([290,180,0]) cube([10,10,10]);

//////////////// FILA 31
//negro x1
color("black") translate([300,90,0]) cube([10,10,10]);
//rojo x3
color("black") translate([300,100,0]) cube([10,30,20]);
//negro x1
color("black") translate([300,130,0]) cube([10,10,10]);
//rojo x3
color("black") translate([300,140,0]) cube([10,30,20]);
//negro x1
color("black") translate([300,170,0]) cube([10,10,10]);

//////////////// FILA 32
//negro x1
color("black") translate([310,100,0]) cube([10,10,10]);
//rojo x5
color("black") translate([310,110,0]) cube([10,50,20]);
//negro x1
color("black") translate([310,160,0]) cube([10,10,10]);

//////////////// FILA 33
//negro x1
color("black") translate([320,110,0]) cube([10,10,10]);
//rojo x3
color("black") translate([320,120,0]) cube([10,30,20]);
//negro x1
color("black") translate([320,150,0]) cube([10,10,10]);

//////////////// FILA 34
//negro x1
color("black") translate([330,120,0]) cube([10,10,10]);
//rojo x1
color("black") translate([330,130,0]) cube([10,10,20]);
//negro x1
color("black") translate([330,140,0]) cube([10,10,10]);

//////////////// FILA 35
//negro x1
color("black") translate([340,130,0]) cube([10,10,10]);
